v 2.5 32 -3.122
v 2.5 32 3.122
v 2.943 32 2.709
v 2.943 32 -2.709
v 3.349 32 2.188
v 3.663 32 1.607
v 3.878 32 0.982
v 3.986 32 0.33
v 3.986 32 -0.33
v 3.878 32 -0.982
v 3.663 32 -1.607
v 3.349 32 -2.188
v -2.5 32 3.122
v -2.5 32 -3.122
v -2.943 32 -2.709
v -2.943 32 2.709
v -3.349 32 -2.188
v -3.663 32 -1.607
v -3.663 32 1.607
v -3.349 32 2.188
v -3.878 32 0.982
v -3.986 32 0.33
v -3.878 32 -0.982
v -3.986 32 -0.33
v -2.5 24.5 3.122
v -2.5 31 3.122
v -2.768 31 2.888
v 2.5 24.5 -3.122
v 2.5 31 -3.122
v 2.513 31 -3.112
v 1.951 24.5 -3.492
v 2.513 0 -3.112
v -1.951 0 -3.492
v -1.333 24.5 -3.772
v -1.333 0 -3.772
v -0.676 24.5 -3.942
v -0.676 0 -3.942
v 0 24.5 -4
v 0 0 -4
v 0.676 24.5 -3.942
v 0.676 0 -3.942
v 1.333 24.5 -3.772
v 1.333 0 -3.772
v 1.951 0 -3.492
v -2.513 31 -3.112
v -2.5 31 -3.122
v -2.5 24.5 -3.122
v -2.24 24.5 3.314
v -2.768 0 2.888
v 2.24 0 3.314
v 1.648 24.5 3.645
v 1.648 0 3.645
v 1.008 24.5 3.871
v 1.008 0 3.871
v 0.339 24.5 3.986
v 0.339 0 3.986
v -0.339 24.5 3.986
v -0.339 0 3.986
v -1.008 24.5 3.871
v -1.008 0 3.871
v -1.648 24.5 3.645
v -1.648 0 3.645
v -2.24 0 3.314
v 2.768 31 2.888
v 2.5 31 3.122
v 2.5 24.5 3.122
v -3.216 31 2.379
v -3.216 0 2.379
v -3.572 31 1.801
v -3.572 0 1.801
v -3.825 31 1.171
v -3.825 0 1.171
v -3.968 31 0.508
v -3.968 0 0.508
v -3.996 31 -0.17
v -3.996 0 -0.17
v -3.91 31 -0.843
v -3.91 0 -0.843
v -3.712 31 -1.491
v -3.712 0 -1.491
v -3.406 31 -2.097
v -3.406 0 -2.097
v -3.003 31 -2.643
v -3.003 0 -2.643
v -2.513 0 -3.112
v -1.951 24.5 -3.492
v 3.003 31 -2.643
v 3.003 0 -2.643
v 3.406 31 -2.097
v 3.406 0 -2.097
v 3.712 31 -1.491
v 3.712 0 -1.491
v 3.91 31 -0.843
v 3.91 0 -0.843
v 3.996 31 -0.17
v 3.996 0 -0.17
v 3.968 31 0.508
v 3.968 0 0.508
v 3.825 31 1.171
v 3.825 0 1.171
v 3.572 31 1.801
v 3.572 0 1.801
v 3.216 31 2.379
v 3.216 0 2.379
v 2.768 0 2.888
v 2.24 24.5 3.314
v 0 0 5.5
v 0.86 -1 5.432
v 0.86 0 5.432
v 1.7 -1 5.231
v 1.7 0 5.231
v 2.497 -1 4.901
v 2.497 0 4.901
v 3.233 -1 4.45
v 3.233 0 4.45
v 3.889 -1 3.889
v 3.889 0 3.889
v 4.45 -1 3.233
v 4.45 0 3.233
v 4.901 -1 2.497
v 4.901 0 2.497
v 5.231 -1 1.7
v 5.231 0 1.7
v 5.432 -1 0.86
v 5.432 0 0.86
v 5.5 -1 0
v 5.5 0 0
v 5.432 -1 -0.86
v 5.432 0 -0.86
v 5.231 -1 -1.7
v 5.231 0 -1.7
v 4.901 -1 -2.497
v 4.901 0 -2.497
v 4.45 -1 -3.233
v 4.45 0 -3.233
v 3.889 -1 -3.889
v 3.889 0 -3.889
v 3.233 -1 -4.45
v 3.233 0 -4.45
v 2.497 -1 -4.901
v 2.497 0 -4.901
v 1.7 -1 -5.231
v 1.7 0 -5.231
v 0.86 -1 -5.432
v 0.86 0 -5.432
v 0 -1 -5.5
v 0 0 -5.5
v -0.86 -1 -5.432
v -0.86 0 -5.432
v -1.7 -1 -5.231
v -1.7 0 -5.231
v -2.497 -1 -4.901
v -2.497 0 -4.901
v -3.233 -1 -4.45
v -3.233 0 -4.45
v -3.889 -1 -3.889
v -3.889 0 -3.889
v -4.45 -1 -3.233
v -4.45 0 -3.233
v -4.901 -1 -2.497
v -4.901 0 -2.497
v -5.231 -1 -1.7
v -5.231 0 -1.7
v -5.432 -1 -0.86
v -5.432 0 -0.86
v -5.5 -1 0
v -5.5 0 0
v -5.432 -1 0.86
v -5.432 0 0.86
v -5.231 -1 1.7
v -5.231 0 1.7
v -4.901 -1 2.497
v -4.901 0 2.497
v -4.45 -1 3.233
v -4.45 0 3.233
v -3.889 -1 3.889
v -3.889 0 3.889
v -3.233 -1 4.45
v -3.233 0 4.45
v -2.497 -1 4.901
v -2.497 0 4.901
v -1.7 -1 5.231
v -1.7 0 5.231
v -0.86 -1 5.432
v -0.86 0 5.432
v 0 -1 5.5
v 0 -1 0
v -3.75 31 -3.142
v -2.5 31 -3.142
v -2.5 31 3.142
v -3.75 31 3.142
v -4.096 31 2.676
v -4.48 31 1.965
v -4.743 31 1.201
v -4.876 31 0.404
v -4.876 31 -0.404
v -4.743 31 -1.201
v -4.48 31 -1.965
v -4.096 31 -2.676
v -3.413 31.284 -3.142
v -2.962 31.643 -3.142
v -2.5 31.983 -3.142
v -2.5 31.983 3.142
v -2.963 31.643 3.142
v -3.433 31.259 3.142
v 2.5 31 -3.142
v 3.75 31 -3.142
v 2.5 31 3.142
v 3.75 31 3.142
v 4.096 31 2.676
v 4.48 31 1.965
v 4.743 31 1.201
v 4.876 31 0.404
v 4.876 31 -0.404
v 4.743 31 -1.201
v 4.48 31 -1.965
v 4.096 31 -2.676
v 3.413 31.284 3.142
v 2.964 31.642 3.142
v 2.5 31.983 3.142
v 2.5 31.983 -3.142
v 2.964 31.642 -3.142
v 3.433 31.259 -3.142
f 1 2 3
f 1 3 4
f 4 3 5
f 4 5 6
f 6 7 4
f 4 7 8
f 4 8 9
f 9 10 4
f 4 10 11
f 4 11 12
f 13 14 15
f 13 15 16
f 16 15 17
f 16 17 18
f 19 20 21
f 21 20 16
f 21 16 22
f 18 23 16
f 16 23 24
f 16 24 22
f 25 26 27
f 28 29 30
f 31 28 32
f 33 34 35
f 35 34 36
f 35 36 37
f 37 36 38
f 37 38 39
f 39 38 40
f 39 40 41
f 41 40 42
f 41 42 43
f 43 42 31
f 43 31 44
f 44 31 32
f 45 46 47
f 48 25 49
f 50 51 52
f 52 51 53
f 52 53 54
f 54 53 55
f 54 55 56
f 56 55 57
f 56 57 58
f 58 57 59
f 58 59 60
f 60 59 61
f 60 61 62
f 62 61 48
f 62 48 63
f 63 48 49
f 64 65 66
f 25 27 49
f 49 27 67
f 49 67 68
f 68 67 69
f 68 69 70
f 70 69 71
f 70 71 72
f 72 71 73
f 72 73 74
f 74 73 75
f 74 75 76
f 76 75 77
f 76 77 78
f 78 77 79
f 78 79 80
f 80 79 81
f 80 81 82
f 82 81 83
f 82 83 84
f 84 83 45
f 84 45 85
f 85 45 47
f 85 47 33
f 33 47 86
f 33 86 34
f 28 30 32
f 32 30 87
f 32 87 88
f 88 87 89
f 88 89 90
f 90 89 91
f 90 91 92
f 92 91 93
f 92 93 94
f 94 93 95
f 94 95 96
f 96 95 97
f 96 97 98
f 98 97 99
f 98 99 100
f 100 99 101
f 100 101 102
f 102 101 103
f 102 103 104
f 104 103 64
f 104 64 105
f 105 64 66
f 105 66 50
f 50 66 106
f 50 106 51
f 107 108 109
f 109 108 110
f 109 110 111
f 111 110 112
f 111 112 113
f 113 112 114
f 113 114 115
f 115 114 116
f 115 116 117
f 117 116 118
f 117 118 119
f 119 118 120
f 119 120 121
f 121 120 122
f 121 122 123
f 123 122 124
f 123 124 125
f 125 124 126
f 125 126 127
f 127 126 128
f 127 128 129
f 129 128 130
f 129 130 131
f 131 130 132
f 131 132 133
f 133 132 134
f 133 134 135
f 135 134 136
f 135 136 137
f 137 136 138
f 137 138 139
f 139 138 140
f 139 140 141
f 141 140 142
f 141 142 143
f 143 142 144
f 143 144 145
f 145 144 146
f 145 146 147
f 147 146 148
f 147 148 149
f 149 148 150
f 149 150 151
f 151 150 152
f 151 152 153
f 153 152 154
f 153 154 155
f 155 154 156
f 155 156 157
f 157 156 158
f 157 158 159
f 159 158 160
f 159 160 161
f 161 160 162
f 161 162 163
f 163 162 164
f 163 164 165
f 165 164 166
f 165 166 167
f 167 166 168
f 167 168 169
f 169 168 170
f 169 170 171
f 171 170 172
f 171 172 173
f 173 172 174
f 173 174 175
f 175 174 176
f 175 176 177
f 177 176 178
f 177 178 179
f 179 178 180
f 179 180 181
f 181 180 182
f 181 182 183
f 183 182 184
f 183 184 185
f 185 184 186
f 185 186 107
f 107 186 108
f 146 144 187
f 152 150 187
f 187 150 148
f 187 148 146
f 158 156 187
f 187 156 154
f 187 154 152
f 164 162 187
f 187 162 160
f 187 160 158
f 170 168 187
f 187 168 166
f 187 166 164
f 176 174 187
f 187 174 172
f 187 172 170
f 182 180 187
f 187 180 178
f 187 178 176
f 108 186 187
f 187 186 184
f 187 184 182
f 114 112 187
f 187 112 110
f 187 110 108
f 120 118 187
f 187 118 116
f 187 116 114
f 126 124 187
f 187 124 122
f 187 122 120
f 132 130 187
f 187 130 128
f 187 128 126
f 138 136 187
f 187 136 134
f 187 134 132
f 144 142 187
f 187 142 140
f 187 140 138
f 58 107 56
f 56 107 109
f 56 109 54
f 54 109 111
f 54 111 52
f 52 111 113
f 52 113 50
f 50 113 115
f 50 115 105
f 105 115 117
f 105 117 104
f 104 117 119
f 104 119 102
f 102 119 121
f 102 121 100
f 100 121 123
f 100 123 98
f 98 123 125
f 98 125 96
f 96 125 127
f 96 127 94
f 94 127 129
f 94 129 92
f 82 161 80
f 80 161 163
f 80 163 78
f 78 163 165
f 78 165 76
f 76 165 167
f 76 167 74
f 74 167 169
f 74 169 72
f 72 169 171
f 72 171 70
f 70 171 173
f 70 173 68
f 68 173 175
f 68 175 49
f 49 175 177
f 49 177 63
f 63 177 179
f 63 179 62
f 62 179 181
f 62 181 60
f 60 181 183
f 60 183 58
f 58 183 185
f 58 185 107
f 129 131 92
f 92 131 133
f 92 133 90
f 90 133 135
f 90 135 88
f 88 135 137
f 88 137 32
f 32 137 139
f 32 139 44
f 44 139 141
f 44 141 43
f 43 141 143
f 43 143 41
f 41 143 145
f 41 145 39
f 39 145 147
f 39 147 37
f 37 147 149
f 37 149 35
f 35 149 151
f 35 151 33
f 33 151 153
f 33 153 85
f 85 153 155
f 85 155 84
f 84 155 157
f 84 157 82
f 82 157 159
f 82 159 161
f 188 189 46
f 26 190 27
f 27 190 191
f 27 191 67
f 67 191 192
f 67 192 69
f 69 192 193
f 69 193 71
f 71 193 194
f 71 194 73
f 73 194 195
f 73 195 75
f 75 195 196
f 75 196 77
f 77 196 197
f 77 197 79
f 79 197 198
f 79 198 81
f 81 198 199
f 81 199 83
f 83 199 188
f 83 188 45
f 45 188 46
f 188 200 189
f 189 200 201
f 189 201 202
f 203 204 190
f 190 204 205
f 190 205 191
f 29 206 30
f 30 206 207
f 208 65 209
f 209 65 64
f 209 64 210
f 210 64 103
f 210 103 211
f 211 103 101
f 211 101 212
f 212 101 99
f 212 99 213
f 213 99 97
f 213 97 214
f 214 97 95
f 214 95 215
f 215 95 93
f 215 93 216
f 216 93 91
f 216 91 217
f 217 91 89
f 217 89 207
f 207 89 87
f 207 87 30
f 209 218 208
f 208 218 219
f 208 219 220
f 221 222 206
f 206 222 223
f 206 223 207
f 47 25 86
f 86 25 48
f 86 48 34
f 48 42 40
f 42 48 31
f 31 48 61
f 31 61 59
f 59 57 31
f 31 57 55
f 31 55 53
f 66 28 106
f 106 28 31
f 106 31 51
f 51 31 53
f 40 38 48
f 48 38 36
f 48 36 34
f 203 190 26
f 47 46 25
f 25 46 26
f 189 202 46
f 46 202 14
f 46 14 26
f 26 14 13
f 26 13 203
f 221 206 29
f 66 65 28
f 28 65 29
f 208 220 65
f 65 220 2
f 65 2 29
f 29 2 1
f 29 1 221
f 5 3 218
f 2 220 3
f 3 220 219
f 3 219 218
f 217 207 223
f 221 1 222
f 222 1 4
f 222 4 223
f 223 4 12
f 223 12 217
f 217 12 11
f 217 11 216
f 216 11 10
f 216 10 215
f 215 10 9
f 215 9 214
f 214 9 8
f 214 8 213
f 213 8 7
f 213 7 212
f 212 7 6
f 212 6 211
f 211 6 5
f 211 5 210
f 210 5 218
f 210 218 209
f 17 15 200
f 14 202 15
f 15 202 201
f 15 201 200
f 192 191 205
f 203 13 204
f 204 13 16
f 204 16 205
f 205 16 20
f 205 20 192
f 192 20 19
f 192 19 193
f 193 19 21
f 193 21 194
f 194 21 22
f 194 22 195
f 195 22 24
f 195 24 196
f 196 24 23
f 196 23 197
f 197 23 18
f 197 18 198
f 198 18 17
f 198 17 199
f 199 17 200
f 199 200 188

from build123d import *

# Parameters (mm, degrees)
SKETCH1_R           = 4
BOSS_EXTRUDE1_DEPTH = 32
SKETCH4_R           = 5.5
BOSS_EXTRUDE3_DEPTH = 1
BOSS_EXTRUDE4_DEPTH = 1
SKETCH6_W           = 5
SKETCH6_H           = 8
CUT_EXTRUDE2_DEPTH  = 7.5


with BuildPart() as part:
    # Sketch1 → Boss-Extrude1 (new body)
    with BuildSketch(Plane(origin=(0, 0, 0), x_dir=(1, 0, 0), z_dir=(0, 1, 0))):
        with Locations(Location((0, 0, 0), (0, 0, 270))):
            Circle(SKETCH1_R)
    extrude(amount=BOSS_EXTRUDE1_DEPTH)

    # Sketch4 → Boss-Extrude3 (add)
    with BuildSketch(Plane.XZ):
        with Locations(Location((0, 0, 0), (0, 0, 270))):
            Circle(SKETCH4_R)
    extrude(amount=BOSS_EXTRUDE3_DEPTH)

    # Sketch5 → Boss-Extrude4 (add)
    with BuildSketch(Plane(origin=(0, 31, 0), x_dir=(1, 0, 0), z_dir=(0, 1, 0))):
        with BuildLine():
            Line((-3.75, -3.142053469), (3.75, -3.142053469))
            ThreePointArc((3.75, -3.142053469), (4.892340953, 0), (3.75, 3.142053469))
            Line((3.75, 3.142053469), (-3.75, 3.142053469))
            ThreePointArc((-3.75, 3.142053469), (-4.892340953, 0), (-3.75, -3.142053469))
        make_face()
    extrude(amount=BOSS_EXTRUDE4_DEPTH)

    # Sketch6 → Cut-Extrude2 (cut)
    with BuildSketch(Plane(origin=(0, 32, 0), x_dir=(1, 0, 0), z_dir=(0, 1, 0))):
        Rectangle(SKETCH6_W, SKETCH6_H)
    extrude(amount=-CUT_EXTRUDE2_DEPTH, mode=Mode.SUBTRACT)

    # Sketch8 → Cut-Revolve1 (revolve, cut)
    with BuildSketch(Plane.XY, mode=Mode.PRIVATE) as cut_revolve1_sk:
        Polygon((4.892340953, 31), (4, 32), (4.892340953, 32), align=None)
    revolve(cut_revolve1_sk.sketch.rotate(Axis((0, 0, 0), (0, 1, 0)), 90), axis=Axis((0, 0, 0), (0, 1, 0)), mode=Mode.SUBTRACT)


solid = part.part
